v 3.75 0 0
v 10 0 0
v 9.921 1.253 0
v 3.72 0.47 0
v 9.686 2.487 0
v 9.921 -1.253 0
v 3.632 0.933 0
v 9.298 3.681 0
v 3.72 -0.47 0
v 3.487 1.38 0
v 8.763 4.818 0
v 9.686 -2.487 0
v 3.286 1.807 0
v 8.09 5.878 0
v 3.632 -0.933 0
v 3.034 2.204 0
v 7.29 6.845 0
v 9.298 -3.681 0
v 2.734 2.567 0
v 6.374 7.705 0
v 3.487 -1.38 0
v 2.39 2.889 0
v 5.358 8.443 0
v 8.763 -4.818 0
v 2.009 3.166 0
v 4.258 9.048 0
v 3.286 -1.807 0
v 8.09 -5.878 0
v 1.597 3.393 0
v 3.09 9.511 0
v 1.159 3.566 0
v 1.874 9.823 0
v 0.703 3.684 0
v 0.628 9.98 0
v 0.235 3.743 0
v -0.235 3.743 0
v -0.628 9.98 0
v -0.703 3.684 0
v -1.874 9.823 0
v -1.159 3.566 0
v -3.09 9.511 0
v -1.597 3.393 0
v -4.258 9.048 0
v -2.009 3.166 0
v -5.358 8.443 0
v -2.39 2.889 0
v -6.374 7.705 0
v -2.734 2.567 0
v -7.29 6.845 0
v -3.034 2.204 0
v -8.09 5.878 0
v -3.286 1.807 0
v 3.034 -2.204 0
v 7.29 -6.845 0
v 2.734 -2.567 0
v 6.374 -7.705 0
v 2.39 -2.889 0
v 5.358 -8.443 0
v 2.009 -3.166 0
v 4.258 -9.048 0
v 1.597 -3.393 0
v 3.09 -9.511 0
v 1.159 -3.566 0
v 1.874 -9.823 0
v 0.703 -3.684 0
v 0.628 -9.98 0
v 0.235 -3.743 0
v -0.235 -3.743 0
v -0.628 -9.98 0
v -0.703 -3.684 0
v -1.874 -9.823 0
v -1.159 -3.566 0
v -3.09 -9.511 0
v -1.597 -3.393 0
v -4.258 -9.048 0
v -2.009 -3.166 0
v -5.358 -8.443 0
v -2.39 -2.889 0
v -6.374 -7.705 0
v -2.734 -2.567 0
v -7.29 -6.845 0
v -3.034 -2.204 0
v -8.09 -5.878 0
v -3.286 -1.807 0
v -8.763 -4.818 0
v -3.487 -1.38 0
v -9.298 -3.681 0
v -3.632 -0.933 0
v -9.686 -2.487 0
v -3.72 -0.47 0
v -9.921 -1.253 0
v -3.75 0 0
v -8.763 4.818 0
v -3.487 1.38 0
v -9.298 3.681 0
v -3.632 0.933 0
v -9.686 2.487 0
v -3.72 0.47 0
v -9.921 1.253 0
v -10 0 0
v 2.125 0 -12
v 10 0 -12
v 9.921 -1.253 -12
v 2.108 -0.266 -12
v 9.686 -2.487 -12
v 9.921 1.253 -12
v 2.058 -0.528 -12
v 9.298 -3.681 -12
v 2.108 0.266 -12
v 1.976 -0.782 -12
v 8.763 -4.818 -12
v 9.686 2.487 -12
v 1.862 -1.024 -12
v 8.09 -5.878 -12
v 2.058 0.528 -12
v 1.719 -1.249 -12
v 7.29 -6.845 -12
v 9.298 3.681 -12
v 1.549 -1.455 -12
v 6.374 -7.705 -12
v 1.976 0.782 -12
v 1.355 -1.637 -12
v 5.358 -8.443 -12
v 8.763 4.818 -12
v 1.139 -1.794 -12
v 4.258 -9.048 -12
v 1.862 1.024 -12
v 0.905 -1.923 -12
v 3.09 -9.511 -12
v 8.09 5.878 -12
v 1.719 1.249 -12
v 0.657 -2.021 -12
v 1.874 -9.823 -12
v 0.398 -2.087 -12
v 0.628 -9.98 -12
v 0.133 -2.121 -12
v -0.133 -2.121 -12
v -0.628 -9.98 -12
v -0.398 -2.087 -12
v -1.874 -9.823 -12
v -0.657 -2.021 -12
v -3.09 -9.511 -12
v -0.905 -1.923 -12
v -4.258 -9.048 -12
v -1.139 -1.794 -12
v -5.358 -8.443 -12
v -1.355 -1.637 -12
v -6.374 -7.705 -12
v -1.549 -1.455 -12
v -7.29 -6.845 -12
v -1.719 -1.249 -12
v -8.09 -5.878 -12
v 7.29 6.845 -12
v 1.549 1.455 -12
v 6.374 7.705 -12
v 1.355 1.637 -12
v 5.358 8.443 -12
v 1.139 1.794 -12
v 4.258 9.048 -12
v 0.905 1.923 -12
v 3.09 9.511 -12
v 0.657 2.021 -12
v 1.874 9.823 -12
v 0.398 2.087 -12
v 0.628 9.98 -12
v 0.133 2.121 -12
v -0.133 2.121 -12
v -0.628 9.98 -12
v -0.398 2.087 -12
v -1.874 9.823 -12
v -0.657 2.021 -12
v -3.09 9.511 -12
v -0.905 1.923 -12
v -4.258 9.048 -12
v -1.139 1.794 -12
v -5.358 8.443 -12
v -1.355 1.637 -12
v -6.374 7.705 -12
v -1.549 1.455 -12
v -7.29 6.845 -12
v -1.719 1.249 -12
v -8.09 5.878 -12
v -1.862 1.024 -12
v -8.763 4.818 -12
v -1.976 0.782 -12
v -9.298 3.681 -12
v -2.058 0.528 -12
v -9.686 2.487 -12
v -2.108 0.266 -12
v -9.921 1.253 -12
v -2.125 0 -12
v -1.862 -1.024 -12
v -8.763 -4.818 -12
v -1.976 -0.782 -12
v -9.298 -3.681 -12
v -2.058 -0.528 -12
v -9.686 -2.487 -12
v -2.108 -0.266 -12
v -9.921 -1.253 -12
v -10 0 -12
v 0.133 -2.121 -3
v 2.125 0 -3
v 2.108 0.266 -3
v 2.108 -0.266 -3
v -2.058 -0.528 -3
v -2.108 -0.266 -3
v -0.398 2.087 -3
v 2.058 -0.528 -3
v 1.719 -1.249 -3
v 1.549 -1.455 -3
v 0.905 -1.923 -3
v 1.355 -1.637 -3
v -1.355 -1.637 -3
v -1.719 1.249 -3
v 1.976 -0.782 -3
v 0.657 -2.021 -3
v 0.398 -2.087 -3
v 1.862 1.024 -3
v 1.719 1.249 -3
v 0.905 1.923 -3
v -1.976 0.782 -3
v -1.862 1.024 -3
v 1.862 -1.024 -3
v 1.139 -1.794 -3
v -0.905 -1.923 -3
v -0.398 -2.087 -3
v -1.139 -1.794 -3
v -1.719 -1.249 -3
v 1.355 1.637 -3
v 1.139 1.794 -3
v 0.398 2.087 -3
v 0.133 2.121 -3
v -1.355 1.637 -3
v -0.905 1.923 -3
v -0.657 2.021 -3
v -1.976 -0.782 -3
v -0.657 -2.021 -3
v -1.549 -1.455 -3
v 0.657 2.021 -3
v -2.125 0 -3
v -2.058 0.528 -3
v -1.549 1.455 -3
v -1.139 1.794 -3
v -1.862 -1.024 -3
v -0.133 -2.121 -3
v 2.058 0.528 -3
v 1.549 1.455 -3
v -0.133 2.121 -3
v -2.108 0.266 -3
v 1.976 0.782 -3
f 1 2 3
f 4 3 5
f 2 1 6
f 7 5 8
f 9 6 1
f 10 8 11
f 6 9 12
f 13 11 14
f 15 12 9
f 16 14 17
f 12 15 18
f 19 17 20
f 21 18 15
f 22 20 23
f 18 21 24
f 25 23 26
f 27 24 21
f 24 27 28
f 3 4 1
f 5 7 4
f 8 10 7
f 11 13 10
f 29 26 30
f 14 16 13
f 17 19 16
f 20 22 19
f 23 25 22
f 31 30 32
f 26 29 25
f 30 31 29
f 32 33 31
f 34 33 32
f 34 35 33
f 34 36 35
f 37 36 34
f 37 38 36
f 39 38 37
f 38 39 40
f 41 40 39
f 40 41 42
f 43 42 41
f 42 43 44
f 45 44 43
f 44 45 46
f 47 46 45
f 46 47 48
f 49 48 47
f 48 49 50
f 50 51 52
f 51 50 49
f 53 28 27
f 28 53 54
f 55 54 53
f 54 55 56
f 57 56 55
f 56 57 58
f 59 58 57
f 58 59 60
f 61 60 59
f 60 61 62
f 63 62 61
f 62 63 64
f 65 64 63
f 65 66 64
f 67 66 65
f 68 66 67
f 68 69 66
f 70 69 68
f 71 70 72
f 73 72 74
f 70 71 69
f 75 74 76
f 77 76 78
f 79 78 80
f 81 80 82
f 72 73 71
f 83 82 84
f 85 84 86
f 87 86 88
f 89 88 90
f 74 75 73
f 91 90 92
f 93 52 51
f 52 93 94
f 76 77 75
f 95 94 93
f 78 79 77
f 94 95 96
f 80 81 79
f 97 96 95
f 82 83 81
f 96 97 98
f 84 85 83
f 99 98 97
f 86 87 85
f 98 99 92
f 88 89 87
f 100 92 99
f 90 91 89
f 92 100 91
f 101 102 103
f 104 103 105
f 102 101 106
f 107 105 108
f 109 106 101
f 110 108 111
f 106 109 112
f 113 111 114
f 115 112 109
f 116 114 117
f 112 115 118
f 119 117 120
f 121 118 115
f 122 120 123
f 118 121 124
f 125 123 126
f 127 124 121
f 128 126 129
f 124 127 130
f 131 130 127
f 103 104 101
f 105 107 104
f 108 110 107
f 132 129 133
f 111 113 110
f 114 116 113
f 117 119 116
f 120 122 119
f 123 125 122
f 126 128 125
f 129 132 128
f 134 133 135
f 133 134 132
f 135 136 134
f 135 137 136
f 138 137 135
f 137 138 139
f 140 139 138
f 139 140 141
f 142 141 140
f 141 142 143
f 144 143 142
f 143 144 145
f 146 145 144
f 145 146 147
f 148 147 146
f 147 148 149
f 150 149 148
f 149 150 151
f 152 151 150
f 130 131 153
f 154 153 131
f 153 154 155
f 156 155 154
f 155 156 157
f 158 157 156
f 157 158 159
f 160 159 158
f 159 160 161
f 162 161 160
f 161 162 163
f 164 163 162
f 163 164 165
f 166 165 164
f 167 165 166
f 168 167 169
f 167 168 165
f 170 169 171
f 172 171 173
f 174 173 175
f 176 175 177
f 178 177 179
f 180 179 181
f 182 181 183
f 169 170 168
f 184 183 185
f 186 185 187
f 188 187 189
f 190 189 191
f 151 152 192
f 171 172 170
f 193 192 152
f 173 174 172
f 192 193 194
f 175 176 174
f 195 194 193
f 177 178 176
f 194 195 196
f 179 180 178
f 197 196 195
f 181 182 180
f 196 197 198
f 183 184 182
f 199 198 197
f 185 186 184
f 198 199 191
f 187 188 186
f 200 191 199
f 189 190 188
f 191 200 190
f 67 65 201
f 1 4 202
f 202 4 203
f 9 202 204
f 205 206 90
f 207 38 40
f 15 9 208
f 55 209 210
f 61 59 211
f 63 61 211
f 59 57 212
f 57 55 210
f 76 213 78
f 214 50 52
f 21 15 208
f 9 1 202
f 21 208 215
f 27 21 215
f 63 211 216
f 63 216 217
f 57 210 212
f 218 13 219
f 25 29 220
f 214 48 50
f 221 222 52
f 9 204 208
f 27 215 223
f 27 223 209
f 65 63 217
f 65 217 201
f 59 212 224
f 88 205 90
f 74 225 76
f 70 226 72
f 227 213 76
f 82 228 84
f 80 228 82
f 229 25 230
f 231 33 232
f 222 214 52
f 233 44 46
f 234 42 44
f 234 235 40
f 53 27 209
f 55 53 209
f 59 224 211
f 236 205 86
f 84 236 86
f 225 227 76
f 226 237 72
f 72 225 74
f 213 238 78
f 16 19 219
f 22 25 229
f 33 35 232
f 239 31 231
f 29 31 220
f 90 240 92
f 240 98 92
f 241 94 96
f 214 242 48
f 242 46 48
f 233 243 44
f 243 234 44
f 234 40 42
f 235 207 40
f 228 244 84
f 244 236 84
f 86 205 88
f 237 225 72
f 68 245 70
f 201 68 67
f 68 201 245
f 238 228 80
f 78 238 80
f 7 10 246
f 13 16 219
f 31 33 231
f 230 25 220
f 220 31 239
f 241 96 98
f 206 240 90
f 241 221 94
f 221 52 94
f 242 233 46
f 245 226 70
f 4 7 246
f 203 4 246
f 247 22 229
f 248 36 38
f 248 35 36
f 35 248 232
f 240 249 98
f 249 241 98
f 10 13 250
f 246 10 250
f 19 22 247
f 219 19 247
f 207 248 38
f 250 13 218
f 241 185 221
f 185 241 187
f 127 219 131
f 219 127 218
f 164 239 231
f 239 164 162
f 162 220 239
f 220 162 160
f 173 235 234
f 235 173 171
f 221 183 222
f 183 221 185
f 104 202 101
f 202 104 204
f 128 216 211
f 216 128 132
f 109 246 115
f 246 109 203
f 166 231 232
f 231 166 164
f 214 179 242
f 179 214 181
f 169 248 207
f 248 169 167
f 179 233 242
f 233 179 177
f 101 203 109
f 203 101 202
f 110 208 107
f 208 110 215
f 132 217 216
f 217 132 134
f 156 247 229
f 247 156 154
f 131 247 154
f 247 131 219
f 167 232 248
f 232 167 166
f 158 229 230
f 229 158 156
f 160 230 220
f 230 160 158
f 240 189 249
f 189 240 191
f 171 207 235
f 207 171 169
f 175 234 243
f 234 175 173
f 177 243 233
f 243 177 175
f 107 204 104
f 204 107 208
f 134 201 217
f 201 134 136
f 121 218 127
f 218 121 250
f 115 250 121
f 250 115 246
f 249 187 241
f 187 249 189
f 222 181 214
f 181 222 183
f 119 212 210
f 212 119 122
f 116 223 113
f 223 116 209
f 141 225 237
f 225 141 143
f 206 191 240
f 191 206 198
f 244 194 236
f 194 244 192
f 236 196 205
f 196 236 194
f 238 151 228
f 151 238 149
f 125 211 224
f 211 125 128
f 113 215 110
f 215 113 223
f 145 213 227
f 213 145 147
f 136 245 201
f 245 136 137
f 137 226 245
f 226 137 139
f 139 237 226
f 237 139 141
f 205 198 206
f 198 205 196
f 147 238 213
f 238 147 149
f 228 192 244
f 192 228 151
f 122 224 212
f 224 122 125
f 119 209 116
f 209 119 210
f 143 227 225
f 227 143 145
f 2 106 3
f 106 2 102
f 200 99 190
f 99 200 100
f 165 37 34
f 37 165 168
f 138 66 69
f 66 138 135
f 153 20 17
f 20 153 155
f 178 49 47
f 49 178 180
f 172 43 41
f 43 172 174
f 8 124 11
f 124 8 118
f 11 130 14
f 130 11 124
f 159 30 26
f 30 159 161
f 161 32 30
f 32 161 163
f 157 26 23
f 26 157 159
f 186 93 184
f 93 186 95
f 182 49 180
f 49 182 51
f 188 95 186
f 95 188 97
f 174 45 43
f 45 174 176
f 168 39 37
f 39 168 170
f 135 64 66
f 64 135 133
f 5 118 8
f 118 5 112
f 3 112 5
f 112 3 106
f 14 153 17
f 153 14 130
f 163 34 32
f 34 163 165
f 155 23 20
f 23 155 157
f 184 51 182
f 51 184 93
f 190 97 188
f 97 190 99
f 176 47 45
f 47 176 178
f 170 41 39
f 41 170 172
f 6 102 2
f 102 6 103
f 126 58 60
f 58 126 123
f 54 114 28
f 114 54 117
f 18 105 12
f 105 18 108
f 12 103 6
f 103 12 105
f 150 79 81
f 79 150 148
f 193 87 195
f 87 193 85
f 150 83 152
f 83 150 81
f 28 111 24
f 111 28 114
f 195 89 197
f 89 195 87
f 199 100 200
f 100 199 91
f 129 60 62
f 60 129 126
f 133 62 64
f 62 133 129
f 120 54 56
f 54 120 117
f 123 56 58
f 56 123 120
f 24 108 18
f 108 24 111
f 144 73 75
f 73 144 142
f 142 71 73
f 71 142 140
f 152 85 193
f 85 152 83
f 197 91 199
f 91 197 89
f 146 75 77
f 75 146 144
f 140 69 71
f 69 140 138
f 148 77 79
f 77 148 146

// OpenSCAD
$fn = 50;


difference() {
	union() {
		translate(v = [0, 0, -12.0000000000]) {
			cylinder(h = 12, r = 10.0000000000);
		}
		cylinder(h = 0, r = 13.0000000000);
	}
	union() {
		translate(v = [0, 0, 0]) {
			rotate(a = [0, 0, 0]) {
				difference() {
					union() {
						#translate(v = [0, 0, -12.0000000000]) {
							cylinder(h = 12, r = 2.0000000000);
						}
						#translate(v = [0, 0, -3]) {
							cylinder(h = 3, r = 10.0000000000, r1 = 2.1250000000, r2 = 3.7500000000);
						}
						#translate(v = [0, 0, -12.0000000000]) {
							cylinder(h = 12, r = 2.1250000000);
						}
						#translate(v = [0, 0, -12.0000000000]) {
							cylinder(h = 12, r = 2.0000000000);
						}
					}
					union();
				}
			}
		}
	}
}
